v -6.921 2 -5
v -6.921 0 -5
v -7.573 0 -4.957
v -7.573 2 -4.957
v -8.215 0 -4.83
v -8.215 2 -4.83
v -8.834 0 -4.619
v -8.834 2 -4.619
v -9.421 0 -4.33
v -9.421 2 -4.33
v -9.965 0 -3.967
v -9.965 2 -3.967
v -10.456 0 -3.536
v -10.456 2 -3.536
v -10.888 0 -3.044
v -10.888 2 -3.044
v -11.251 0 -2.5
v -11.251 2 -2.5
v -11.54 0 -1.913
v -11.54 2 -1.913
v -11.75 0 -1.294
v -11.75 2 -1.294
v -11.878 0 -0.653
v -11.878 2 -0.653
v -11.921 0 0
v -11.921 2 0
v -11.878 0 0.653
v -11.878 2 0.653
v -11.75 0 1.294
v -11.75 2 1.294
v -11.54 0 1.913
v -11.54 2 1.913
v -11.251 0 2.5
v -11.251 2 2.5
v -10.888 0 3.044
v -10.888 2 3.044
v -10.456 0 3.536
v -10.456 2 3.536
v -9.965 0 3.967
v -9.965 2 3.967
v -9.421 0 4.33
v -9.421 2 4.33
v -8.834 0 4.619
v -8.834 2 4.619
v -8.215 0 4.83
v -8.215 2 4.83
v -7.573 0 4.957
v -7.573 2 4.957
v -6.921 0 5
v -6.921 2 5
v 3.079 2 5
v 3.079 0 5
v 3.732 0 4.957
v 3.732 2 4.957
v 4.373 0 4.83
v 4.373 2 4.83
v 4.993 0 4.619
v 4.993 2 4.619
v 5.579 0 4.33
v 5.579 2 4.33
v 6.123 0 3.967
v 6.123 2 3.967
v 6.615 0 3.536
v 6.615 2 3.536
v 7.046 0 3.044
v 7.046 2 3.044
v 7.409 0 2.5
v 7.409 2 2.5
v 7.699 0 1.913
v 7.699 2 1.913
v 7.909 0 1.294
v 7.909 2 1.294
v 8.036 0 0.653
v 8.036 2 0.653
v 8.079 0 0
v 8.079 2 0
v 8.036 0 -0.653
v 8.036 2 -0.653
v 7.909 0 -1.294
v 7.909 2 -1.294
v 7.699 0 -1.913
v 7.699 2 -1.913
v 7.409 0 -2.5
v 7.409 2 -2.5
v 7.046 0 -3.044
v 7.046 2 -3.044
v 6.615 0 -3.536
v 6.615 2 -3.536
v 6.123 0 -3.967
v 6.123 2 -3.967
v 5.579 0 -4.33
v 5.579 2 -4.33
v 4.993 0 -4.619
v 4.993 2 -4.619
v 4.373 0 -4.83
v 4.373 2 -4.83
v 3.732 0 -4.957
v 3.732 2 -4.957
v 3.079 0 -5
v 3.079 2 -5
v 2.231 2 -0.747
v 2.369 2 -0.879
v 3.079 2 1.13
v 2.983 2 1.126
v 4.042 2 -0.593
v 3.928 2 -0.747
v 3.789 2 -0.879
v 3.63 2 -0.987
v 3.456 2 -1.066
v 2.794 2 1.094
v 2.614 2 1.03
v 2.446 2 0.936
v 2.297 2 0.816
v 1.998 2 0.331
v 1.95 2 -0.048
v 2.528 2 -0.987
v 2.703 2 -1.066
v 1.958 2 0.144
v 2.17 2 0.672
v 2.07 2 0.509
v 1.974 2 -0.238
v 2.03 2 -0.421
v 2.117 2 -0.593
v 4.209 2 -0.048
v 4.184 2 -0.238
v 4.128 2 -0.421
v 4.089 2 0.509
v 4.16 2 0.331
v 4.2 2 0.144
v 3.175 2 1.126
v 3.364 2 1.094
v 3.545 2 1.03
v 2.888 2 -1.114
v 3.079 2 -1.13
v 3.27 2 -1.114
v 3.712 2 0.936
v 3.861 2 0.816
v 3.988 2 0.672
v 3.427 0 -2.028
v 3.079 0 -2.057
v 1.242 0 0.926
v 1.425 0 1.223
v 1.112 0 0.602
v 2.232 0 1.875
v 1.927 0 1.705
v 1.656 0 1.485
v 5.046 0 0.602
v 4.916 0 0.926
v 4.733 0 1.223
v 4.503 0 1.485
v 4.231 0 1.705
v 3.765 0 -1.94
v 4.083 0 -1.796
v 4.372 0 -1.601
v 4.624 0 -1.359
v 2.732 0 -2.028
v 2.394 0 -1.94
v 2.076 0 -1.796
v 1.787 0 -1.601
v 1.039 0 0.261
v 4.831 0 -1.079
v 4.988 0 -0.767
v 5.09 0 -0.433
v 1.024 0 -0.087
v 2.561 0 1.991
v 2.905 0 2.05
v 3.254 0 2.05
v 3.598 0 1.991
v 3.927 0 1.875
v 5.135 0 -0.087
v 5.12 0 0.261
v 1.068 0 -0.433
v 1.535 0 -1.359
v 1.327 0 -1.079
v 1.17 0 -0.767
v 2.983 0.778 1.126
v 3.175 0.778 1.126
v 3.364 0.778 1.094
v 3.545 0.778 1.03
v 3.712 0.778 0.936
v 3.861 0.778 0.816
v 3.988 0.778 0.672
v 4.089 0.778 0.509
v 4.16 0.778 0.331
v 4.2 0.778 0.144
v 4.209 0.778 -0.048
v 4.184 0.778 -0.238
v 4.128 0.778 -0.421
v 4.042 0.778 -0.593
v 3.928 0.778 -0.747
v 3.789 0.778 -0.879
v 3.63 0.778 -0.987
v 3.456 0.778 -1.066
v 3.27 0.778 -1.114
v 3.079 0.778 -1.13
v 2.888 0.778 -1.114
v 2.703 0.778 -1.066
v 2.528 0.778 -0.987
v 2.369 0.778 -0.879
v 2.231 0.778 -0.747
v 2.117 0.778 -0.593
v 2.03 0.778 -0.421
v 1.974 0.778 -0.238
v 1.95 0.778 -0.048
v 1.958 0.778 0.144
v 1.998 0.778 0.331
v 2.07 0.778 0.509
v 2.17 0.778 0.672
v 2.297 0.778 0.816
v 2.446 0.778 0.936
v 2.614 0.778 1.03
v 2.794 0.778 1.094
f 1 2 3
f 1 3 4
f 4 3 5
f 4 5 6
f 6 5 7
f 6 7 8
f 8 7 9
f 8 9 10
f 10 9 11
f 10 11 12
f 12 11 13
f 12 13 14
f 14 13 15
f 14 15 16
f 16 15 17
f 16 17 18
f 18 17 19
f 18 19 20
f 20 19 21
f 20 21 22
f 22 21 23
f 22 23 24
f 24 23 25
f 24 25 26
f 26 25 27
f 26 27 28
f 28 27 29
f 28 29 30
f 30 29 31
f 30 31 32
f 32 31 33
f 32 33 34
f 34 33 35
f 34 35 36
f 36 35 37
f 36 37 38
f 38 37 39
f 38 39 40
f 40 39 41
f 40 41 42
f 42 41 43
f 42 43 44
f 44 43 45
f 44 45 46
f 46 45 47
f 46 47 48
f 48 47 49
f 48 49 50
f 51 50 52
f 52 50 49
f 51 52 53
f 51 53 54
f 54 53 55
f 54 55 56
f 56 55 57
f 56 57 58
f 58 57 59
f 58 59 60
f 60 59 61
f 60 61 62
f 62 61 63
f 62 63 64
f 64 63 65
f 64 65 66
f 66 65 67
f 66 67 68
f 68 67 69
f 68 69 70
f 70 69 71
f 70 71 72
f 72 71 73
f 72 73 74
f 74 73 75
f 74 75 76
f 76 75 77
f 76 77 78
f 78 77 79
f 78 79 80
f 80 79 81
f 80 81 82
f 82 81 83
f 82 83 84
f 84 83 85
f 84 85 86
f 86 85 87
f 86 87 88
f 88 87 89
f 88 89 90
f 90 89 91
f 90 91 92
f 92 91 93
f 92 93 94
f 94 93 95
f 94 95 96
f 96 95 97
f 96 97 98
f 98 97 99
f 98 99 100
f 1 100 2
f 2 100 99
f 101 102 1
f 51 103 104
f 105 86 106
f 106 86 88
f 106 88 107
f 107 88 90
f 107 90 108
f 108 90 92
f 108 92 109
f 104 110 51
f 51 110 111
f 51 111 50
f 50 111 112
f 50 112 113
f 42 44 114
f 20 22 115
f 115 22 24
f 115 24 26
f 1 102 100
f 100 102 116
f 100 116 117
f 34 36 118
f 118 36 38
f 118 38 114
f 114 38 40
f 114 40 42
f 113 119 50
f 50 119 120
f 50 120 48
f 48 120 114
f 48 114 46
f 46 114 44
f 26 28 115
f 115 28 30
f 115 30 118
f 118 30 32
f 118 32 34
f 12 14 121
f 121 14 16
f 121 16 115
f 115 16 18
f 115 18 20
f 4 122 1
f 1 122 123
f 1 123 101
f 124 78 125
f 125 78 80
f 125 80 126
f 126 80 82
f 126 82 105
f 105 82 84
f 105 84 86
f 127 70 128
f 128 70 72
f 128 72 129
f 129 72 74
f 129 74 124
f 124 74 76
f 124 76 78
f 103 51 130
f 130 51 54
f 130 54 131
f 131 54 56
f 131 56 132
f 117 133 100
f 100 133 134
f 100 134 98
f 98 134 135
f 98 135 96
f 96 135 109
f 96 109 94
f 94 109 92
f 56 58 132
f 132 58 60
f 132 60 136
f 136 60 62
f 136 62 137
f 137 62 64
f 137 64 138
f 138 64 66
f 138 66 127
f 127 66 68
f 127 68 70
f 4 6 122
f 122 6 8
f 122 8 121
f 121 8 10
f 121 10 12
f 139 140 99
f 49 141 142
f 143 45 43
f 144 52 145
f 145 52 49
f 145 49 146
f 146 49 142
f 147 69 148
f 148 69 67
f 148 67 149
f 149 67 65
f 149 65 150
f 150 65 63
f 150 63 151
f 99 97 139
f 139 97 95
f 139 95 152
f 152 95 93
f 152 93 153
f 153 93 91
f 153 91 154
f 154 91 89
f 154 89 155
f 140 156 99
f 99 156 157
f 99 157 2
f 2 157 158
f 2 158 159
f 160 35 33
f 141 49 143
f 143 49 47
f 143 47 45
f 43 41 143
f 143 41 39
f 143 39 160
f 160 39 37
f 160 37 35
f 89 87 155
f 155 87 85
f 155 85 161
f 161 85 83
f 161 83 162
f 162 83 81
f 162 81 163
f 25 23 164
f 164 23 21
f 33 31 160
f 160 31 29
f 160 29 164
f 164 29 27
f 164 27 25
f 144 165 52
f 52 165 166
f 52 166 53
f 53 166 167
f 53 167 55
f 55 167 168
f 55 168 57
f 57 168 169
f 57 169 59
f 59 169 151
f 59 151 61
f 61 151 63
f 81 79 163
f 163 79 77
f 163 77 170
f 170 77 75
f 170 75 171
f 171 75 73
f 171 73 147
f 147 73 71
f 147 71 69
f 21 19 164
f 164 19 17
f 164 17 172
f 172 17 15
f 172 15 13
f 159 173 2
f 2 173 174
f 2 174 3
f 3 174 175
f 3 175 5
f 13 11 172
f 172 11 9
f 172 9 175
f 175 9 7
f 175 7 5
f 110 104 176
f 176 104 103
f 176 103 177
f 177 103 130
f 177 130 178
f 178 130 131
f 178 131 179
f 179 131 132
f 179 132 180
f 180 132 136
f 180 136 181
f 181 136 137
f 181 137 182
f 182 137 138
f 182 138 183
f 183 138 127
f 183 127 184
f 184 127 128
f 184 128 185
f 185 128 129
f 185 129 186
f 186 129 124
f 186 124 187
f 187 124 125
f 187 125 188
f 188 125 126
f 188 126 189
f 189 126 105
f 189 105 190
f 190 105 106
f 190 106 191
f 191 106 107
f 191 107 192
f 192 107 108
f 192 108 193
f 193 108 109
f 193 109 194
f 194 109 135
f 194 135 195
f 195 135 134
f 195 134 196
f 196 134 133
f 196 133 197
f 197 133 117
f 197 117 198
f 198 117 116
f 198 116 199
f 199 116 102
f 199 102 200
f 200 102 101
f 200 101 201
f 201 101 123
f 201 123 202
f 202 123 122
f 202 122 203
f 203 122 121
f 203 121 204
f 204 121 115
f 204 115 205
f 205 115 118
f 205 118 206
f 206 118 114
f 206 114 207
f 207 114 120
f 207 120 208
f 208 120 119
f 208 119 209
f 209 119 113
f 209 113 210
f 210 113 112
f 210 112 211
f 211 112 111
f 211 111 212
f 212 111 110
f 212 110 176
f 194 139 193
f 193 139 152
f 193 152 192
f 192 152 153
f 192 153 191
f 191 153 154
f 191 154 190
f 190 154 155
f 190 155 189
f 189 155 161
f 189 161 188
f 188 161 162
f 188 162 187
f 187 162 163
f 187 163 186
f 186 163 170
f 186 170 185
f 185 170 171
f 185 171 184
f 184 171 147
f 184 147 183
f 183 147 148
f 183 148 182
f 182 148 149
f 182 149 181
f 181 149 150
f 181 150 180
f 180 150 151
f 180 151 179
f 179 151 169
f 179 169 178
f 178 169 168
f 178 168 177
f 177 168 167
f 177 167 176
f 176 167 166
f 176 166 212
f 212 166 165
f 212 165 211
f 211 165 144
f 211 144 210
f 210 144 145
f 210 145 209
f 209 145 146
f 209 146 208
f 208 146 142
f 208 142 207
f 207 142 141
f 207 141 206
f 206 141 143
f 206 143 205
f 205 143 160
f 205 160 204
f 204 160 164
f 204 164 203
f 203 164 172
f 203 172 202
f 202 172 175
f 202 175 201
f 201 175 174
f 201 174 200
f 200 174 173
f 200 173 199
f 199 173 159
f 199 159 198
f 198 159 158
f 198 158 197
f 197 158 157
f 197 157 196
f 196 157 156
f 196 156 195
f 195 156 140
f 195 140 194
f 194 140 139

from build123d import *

# Parameters (mm, degrees)
BOSS_EXTRUDE1_DEPTH             = 2
F_4_40_TAPPED_HOLE1_D           = 2.2606
F_4_40_TAPPED_HOLE1_DEPTH       = 30
F_4_40_TAPPED_HOLE1_CSINK_D     = 4.1148
F_4_40_TAPPED_HOLE1_CSINK_ANGLE = 100
F_4_40_TAPPED_HOLE1_TIP         = 0.679152758


with BuildPart() as part:
    # Sketch1 → Boss-Extrude1 (new body)
    with BuildSketch(Plane(origin=(0, 0, 0), x_dir=(1, 0, 0), z_dir=(0, 1, 0))):
        with BuildLine():
            Line((-6.920754264, 5), (3.079245736, 5))
            ThreePointArc((3.079245736, 5), (8.079245736, 0), (3.079245736, -5))
            Line((3.079245736, -5), (-6.920754264, -5))
            ThreePointArc((-6.920754264, -5), (-11.920754264, 0), (-6.920754264, 5))
        make_face()
    extrude(amount=BOSS_EXTRUDE1_DEPTH)

    # #4-40 Tapped Hole1
    with Locations(Plane(origin=(28.793519494, 0, 54.352929604), x_dir=(-0.6824480483722141, 0, -0.7309341018675735), z_dir=(0, -1, 0))):
        with Locations((57.277065725, 18.297611137)):
            CounterSinkHole(F_4_40_TAPPED_HOLE1_D / 2, F_4_40_TAPPED_HOLE1_CSINK_D / 2, depth=F_4_40_TAPPED_HOLE1_DEPTH, counter_sink_angle=F_4_40_TAPPED_HOLE1_CSINK_ANGLE)
            with Locations((0, 0, -(F_4_40_TAPPED_HOLE1_DEPTH + F_4_40_TAPPED_HOLE1_TIP / 2))):  # 118° drill point
                Cone(0, F_4_40_TAPPED_HOLE1_D / 2, F_4_40_TAPPED_HOLE1_TIP, mode=Mode.SUBTRACT)


solid = part.part
